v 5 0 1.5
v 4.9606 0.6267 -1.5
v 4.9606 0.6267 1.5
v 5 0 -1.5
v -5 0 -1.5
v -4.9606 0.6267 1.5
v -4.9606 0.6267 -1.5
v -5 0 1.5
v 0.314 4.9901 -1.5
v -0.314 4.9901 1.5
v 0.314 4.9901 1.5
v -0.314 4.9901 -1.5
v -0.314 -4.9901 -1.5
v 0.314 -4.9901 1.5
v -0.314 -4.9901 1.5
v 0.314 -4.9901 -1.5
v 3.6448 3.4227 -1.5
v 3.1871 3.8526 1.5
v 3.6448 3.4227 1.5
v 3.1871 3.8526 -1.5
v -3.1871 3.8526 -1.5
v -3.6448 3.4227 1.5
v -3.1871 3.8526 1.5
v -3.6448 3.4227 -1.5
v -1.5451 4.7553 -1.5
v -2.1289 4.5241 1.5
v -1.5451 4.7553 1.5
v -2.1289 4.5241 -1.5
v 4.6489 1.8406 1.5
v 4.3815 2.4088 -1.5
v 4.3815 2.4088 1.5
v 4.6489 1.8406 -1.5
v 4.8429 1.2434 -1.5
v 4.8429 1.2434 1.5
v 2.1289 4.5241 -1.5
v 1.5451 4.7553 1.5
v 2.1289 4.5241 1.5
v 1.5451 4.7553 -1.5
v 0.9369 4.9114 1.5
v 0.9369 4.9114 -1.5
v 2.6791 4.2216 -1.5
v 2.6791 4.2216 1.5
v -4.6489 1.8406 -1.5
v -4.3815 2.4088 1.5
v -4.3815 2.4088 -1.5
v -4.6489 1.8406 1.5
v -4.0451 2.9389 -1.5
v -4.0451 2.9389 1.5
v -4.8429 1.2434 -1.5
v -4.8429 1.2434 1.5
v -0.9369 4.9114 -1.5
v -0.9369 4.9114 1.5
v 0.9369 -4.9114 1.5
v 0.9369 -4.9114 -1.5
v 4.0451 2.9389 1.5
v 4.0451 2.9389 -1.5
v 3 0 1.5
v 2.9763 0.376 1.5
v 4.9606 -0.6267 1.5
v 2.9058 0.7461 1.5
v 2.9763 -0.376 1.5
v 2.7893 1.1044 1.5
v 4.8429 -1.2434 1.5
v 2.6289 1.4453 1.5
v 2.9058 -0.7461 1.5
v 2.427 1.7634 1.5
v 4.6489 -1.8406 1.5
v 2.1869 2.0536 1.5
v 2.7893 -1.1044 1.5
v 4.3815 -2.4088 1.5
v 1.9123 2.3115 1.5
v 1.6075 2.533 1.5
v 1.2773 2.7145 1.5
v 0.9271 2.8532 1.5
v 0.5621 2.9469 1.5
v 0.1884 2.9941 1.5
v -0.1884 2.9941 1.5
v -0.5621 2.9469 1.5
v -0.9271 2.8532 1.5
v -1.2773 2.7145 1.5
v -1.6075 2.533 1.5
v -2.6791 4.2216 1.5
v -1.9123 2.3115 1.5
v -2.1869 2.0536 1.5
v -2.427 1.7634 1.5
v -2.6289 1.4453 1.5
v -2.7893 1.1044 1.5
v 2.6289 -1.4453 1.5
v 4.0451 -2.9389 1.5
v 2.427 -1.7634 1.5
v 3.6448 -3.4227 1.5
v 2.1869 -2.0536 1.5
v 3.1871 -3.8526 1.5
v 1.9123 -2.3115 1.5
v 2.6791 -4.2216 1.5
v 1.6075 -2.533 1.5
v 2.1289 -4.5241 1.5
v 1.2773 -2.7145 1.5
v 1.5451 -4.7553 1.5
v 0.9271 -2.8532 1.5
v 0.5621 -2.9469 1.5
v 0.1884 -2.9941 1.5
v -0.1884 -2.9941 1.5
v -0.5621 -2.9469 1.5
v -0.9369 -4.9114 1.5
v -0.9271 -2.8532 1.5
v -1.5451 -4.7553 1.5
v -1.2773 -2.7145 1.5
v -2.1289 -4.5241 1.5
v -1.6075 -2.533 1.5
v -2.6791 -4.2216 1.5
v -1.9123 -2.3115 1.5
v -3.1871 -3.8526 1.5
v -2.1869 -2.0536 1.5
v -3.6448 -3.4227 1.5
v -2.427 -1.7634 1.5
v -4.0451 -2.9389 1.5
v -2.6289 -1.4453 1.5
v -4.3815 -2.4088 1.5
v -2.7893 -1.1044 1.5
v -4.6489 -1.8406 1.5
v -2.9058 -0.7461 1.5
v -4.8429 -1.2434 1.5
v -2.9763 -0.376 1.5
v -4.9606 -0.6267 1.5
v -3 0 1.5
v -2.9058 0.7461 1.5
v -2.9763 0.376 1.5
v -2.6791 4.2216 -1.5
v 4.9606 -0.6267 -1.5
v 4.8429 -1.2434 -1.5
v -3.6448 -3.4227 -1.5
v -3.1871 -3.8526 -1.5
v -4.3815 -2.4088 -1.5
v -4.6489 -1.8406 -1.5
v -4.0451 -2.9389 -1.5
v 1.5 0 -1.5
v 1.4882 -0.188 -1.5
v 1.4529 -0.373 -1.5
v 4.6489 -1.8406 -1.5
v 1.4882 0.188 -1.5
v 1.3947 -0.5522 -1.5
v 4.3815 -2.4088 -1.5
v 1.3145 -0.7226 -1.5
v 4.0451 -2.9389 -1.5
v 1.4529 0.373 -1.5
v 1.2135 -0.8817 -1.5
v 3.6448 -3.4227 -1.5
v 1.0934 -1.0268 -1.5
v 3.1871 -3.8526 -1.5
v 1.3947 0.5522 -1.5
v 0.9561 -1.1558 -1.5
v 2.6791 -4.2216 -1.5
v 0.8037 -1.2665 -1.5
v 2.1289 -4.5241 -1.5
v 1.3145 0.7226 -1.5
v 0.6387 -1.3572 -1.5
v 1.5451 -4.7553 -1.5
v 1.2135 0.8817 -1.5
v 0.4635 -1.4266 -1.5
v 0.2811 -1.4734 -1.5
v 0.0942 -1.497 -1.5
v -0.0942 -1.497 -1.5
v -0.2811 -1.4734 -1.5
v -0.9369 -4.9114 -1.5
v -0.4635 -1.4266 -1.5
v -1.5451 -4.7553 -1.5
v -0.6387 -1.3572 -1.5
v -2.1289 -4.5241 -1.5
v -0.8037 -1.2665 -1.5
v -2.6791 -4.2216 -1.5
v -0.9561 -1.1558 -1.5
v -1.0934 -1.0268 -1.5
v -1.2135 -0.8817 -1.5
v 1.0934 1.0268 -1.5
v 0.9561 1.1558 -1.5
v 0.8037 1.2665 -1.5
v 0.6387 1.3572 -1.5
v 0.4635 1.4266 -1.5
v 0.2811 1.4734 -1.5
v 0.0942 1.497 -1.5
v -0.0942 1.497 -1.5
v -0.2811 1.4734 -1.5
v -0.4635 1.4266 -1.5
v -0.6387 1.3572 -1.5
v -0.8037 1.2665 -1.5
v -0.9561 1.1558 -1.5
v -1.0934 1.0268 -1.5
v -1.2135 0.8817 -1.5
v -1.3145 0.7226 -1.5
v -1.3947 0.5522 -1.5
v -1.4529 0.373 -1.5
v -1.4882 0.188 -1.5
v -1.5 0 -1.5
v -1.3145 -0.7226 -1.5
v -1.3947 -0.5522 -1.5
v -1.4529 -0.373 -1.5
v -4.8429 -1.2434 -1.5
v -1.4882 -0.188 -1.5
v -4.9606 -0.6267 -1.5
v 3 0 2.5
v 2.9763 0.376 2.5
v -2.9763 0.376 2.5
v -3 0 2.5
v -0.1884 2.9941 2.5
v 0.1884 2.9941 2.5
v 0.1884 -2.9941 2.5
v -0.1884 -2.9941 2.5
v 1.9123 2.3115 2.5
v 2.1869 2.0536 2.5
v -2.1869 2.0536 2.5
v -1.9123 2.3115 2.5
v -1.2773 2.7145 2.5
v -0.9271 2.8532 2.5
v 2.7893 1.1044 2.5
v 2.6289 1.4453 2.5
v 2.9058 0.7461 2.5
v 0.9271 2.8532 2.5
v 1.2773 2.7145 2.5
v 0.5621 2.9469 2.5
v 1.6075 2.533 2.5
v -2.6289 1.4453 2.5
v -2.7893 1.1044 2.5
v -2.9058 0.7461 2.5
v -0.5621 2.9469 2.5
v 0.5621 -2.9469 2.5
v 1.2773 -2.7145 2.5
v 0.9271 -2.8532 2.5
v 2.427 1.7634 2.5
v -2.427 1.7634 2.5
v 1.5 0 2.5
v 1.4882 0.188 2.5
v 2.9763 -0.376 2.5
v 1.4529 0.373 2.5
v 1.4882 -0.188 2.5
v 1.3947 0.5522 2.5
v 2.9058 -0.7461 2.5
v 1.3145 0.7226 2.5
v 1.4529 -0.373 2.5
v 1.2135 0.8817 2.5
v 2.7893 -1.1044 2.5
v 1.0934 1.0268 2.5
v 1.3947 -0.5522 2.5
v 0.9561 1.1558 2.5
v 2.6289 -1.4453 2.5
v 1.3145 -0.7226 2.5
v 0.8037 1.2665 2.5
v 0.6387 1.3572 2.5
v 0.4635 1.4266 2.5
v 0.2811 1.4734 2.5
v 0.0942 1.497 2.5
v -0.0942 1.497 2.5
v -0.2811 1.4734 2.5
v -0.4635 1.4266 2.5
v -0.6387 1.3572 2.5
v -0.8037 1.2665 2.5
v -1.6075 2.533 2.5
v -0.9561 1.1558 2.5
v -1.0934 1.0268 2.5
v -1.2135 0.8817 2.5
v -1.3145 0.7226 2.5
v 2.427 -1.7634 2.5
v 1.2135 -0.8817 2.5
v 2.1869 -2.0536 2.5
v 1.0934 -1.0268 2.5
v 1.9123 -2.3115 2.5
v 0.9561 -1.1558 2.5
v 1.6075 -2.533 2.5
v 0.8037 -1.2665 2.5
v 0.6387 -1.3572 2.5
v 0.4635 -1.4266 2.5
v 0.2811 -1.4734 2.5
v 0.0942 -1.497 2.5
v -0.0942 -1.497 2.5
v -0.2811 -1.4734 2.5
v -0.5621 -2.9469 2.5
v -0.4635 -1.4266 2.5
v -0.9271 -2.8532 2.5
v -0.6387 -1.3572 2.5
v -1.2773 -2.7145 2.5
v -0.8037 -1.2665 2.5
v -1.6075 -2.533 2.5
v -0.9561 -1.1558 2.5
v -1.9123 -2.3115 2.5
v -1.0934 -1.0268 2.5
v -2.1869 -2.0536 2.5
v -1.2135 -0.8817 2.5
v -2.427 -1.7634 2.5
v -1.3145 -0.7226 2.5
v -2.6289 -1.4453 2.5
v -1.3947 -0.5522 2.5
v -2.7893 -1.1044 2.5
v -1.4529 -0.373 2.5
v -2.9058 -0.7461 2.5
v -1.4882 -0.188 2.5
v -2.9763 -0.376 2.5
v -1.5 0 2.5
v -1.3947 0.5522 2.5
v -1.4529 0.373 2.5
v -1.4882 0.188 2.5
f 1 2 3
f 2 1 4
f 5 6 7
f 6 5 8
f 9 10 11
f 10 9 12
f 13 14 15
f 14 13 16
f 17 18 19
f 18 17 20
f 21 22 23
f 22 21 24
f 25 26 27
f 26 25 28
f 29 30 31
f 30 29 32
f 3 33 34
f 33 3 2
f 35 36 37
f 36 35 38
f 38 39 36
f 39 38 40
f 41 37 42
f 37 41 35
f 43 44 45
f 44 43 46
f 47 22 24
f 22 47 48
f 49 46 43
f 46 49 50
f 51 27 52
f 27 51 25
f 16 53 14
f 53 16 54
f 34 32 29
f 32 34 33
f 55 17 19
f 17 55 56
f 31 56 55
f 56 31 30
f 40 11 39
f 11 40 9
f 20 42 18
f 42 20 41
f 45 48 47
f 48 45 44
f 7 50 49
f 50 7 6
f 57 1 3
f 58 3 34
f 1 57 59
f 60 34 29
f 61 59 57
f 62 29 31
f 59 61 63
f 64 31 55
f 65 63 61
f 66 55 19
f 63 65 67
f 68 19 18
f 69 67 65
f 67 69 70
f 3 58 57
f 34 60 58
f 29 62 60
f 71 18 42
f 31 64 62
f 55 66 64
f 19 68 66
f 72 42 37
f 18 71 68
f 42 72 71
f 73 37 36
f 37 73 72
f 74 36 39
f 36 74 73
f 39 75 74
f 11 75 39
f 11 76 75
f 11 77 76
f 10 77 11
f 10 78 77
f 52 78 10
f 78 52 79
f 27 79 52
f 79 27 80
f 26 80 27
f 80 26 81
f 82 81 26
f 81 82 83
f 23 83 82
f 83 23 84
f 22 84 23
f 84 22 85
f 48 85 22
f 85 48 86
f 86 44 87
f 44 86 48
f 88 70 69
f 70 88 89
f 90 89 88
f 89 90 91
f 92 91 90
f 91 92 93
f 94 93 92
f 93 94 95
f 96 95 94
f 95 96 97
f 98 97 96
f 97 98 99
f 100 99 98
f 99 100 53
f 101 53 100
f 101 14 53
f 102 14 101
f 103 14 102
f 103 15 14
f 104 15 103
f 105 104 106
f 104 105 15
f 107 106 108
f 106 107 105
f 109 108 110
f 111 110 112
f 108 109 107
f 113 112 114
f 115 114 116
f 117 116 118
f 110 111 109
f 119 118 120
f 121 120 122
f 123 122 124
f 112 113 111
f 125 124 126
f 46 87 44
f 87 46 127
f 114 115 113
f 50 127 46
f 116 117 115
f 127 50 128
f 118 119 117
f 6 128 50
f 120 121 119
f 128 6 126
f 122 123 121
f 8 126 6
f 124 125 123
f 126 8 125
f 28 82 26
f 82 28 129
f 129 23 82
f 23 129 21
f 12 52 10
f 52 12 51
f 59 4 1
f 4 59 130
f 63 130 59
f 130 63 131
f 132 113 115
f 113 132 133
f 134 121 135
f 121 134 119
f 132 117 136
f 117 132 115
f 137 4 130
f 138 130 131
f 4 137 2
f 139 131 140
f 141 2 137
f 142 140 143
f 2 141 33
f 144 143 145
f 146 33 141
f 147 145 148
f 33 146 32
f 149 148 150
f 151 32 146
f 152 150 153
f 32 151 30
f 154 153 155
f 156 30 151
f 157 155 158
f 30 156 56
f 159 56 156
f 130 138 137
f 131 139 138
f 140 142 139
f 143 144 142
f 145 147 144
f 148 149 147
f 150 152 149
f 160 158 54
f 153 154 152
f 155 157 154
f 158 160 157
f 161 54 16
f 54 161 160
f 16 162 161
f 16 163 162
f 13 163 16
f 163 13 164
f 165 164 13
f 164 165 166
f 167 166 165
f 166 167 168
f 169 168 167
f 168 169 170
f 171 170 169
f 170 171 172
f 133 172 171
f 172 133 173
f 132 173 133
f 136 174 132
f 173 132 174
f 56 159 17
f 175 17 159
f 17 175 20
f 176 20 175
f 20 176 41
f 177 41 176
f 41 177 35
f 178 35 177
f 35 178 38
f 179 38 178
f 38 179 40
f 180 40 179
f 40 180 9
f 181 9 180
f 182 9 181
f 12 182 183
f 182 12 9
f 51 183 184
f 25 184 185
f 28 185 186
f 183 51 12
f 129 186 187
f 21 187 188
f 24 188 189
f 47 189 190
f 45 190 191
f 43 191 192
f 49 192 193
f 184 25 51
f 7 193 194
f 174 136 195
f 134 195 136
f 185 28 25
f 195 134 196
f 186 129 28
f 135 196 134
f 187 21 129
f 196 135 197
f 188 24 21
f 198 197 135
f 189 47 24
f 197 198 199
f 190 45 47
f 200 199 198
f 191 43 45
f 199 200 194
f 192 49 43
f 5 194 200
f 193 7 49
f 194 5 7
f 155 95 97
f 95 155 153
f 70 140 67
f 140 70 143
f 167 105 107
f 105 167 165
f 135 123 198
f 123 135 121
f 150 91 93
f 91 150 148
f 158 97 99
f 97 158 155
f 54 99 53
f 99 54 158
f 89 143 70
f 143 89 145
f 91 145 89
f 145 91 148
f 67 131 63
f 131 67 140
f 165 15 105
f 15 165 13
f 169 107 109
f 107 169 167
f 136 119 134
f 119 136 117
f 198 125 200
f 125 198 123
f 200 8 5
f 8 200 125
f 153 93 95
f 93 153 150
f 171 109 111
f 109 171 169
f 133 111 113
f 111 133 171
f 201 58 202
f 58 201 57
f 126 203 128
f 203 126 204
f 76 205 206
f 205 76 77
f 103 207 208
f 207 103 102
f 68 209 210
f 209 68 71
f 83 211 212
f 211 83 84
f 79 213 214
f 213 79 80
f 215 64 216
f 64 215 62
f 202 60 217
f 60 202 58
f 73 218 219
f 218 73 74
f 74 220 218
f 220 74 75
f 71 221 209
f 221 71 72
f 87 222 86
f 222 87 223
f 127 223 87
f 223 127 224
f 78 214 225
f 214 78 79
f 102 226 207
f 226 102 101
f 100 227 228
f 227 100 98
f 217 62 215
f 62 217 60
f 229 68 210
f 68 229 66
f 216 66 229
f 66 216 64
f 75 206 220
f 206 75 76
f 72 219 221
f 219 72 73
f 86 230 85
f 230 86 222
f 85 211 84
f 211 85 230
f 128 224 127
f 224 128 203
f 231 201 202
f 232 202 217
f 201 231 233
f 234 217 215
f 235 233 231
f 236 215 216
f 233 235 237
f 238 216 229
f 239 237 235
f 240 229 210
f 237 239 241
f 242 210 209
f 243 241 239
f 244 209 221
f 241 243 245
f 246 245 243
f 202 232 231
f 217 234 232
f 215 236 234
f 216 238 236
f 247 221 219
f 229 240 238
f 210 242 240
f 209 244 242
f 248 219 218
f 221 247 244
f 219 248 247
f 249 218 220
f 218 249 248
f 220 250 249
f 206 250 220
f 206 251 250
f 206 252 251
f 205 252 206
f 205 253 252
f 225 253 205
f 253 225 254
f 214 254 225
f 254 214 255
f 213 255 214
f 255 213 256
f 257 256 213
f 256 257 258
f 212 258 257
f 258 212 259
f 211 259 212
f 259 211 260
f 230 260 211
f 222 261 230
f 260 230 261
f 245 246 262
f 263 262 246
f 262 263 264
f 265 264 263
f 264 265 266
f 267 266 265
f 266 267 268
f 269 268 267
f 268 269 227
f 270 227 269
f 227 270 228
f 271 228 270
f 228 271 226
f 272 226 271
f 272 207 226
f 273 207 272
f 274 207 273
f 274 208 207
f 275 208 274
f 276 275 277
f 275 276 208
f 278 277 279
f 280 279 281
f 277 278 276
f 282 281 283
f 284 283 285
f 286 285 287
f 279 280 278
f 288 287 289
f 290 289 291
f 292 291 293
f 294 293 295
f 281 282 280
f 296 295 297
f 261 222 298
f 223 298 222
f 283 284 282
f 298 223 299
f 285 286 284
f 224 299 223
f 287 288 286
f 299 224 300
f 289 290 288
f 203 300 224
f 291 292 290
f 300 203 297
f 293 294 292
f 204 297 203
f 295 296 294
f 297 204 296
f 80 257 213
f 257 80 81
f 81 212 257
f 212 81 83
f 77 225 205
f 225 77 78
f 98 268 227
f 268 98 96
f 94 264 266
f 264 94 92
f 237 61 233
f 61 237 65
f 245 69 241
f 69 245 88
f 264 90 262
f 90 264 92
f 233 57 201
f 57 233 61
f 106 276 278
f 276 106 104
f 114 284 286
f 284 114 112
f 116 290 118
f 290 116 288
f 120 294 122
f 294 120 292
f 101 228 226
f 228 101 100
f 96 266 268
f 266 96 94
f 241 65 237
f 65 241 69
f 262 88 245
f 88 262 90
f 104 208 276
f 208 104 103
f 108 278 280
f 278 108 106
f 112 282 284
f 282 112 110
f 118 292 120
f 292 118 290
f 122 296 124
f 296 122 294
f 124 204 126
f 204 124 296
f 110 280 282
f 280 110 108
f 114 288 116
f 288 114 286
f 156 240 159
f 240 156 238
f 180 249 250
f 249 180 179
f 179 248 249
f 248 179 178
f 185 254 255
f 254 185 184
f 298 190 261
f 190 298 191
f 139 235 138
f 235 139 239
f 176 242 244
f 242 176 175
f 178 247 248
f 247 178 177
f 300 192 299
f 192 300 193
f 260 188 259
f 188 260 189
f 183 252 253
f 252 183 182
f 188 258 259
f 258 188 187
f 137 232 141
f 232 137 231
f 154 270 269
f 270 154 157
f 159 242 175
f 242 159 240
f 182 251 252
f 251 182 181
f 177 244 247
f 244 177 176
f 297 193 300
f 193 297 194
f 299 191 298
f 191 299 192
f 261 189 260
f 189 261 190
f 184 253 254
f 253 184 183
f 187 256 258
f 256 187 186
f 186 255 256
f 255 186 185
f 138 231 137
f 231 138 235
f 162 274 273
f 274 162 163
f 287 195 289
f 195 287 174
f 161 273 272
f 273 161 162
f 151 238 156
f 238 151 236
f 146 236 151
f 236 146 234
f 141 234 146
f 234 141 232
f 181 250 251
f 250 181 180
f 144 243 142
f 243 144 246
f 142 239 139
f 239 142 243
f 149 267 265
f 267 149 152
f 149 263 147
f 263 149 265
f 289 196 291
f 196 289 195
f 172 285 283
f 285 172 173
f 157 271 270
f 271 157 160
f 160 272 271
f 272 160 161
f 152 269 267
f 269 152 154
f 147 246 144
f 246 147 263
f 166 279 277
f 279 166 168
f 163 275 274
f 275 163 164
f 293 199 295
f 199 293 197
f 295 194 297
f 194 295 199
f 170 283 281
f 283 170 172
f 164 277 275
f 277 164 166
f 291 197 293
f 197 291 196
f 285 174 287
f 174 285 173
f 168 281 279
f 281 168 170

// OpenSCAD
$fn = 50;


difference() {
	union() {
		translate(v = [0, 0, -1.5000000000]) {
			cylinder(h = 3, r = 5.0000000000);
		}
		translate(v = [0, 0, -1.5000000000]) {
			cylinder(h = 4, r = 3.0000000000);
		}
	}
	union() {
		translate(v = [0, 0, -50.0000000000]) {
			cylinder(h = 100, r = 1.5000000000);
		}
	}
}
